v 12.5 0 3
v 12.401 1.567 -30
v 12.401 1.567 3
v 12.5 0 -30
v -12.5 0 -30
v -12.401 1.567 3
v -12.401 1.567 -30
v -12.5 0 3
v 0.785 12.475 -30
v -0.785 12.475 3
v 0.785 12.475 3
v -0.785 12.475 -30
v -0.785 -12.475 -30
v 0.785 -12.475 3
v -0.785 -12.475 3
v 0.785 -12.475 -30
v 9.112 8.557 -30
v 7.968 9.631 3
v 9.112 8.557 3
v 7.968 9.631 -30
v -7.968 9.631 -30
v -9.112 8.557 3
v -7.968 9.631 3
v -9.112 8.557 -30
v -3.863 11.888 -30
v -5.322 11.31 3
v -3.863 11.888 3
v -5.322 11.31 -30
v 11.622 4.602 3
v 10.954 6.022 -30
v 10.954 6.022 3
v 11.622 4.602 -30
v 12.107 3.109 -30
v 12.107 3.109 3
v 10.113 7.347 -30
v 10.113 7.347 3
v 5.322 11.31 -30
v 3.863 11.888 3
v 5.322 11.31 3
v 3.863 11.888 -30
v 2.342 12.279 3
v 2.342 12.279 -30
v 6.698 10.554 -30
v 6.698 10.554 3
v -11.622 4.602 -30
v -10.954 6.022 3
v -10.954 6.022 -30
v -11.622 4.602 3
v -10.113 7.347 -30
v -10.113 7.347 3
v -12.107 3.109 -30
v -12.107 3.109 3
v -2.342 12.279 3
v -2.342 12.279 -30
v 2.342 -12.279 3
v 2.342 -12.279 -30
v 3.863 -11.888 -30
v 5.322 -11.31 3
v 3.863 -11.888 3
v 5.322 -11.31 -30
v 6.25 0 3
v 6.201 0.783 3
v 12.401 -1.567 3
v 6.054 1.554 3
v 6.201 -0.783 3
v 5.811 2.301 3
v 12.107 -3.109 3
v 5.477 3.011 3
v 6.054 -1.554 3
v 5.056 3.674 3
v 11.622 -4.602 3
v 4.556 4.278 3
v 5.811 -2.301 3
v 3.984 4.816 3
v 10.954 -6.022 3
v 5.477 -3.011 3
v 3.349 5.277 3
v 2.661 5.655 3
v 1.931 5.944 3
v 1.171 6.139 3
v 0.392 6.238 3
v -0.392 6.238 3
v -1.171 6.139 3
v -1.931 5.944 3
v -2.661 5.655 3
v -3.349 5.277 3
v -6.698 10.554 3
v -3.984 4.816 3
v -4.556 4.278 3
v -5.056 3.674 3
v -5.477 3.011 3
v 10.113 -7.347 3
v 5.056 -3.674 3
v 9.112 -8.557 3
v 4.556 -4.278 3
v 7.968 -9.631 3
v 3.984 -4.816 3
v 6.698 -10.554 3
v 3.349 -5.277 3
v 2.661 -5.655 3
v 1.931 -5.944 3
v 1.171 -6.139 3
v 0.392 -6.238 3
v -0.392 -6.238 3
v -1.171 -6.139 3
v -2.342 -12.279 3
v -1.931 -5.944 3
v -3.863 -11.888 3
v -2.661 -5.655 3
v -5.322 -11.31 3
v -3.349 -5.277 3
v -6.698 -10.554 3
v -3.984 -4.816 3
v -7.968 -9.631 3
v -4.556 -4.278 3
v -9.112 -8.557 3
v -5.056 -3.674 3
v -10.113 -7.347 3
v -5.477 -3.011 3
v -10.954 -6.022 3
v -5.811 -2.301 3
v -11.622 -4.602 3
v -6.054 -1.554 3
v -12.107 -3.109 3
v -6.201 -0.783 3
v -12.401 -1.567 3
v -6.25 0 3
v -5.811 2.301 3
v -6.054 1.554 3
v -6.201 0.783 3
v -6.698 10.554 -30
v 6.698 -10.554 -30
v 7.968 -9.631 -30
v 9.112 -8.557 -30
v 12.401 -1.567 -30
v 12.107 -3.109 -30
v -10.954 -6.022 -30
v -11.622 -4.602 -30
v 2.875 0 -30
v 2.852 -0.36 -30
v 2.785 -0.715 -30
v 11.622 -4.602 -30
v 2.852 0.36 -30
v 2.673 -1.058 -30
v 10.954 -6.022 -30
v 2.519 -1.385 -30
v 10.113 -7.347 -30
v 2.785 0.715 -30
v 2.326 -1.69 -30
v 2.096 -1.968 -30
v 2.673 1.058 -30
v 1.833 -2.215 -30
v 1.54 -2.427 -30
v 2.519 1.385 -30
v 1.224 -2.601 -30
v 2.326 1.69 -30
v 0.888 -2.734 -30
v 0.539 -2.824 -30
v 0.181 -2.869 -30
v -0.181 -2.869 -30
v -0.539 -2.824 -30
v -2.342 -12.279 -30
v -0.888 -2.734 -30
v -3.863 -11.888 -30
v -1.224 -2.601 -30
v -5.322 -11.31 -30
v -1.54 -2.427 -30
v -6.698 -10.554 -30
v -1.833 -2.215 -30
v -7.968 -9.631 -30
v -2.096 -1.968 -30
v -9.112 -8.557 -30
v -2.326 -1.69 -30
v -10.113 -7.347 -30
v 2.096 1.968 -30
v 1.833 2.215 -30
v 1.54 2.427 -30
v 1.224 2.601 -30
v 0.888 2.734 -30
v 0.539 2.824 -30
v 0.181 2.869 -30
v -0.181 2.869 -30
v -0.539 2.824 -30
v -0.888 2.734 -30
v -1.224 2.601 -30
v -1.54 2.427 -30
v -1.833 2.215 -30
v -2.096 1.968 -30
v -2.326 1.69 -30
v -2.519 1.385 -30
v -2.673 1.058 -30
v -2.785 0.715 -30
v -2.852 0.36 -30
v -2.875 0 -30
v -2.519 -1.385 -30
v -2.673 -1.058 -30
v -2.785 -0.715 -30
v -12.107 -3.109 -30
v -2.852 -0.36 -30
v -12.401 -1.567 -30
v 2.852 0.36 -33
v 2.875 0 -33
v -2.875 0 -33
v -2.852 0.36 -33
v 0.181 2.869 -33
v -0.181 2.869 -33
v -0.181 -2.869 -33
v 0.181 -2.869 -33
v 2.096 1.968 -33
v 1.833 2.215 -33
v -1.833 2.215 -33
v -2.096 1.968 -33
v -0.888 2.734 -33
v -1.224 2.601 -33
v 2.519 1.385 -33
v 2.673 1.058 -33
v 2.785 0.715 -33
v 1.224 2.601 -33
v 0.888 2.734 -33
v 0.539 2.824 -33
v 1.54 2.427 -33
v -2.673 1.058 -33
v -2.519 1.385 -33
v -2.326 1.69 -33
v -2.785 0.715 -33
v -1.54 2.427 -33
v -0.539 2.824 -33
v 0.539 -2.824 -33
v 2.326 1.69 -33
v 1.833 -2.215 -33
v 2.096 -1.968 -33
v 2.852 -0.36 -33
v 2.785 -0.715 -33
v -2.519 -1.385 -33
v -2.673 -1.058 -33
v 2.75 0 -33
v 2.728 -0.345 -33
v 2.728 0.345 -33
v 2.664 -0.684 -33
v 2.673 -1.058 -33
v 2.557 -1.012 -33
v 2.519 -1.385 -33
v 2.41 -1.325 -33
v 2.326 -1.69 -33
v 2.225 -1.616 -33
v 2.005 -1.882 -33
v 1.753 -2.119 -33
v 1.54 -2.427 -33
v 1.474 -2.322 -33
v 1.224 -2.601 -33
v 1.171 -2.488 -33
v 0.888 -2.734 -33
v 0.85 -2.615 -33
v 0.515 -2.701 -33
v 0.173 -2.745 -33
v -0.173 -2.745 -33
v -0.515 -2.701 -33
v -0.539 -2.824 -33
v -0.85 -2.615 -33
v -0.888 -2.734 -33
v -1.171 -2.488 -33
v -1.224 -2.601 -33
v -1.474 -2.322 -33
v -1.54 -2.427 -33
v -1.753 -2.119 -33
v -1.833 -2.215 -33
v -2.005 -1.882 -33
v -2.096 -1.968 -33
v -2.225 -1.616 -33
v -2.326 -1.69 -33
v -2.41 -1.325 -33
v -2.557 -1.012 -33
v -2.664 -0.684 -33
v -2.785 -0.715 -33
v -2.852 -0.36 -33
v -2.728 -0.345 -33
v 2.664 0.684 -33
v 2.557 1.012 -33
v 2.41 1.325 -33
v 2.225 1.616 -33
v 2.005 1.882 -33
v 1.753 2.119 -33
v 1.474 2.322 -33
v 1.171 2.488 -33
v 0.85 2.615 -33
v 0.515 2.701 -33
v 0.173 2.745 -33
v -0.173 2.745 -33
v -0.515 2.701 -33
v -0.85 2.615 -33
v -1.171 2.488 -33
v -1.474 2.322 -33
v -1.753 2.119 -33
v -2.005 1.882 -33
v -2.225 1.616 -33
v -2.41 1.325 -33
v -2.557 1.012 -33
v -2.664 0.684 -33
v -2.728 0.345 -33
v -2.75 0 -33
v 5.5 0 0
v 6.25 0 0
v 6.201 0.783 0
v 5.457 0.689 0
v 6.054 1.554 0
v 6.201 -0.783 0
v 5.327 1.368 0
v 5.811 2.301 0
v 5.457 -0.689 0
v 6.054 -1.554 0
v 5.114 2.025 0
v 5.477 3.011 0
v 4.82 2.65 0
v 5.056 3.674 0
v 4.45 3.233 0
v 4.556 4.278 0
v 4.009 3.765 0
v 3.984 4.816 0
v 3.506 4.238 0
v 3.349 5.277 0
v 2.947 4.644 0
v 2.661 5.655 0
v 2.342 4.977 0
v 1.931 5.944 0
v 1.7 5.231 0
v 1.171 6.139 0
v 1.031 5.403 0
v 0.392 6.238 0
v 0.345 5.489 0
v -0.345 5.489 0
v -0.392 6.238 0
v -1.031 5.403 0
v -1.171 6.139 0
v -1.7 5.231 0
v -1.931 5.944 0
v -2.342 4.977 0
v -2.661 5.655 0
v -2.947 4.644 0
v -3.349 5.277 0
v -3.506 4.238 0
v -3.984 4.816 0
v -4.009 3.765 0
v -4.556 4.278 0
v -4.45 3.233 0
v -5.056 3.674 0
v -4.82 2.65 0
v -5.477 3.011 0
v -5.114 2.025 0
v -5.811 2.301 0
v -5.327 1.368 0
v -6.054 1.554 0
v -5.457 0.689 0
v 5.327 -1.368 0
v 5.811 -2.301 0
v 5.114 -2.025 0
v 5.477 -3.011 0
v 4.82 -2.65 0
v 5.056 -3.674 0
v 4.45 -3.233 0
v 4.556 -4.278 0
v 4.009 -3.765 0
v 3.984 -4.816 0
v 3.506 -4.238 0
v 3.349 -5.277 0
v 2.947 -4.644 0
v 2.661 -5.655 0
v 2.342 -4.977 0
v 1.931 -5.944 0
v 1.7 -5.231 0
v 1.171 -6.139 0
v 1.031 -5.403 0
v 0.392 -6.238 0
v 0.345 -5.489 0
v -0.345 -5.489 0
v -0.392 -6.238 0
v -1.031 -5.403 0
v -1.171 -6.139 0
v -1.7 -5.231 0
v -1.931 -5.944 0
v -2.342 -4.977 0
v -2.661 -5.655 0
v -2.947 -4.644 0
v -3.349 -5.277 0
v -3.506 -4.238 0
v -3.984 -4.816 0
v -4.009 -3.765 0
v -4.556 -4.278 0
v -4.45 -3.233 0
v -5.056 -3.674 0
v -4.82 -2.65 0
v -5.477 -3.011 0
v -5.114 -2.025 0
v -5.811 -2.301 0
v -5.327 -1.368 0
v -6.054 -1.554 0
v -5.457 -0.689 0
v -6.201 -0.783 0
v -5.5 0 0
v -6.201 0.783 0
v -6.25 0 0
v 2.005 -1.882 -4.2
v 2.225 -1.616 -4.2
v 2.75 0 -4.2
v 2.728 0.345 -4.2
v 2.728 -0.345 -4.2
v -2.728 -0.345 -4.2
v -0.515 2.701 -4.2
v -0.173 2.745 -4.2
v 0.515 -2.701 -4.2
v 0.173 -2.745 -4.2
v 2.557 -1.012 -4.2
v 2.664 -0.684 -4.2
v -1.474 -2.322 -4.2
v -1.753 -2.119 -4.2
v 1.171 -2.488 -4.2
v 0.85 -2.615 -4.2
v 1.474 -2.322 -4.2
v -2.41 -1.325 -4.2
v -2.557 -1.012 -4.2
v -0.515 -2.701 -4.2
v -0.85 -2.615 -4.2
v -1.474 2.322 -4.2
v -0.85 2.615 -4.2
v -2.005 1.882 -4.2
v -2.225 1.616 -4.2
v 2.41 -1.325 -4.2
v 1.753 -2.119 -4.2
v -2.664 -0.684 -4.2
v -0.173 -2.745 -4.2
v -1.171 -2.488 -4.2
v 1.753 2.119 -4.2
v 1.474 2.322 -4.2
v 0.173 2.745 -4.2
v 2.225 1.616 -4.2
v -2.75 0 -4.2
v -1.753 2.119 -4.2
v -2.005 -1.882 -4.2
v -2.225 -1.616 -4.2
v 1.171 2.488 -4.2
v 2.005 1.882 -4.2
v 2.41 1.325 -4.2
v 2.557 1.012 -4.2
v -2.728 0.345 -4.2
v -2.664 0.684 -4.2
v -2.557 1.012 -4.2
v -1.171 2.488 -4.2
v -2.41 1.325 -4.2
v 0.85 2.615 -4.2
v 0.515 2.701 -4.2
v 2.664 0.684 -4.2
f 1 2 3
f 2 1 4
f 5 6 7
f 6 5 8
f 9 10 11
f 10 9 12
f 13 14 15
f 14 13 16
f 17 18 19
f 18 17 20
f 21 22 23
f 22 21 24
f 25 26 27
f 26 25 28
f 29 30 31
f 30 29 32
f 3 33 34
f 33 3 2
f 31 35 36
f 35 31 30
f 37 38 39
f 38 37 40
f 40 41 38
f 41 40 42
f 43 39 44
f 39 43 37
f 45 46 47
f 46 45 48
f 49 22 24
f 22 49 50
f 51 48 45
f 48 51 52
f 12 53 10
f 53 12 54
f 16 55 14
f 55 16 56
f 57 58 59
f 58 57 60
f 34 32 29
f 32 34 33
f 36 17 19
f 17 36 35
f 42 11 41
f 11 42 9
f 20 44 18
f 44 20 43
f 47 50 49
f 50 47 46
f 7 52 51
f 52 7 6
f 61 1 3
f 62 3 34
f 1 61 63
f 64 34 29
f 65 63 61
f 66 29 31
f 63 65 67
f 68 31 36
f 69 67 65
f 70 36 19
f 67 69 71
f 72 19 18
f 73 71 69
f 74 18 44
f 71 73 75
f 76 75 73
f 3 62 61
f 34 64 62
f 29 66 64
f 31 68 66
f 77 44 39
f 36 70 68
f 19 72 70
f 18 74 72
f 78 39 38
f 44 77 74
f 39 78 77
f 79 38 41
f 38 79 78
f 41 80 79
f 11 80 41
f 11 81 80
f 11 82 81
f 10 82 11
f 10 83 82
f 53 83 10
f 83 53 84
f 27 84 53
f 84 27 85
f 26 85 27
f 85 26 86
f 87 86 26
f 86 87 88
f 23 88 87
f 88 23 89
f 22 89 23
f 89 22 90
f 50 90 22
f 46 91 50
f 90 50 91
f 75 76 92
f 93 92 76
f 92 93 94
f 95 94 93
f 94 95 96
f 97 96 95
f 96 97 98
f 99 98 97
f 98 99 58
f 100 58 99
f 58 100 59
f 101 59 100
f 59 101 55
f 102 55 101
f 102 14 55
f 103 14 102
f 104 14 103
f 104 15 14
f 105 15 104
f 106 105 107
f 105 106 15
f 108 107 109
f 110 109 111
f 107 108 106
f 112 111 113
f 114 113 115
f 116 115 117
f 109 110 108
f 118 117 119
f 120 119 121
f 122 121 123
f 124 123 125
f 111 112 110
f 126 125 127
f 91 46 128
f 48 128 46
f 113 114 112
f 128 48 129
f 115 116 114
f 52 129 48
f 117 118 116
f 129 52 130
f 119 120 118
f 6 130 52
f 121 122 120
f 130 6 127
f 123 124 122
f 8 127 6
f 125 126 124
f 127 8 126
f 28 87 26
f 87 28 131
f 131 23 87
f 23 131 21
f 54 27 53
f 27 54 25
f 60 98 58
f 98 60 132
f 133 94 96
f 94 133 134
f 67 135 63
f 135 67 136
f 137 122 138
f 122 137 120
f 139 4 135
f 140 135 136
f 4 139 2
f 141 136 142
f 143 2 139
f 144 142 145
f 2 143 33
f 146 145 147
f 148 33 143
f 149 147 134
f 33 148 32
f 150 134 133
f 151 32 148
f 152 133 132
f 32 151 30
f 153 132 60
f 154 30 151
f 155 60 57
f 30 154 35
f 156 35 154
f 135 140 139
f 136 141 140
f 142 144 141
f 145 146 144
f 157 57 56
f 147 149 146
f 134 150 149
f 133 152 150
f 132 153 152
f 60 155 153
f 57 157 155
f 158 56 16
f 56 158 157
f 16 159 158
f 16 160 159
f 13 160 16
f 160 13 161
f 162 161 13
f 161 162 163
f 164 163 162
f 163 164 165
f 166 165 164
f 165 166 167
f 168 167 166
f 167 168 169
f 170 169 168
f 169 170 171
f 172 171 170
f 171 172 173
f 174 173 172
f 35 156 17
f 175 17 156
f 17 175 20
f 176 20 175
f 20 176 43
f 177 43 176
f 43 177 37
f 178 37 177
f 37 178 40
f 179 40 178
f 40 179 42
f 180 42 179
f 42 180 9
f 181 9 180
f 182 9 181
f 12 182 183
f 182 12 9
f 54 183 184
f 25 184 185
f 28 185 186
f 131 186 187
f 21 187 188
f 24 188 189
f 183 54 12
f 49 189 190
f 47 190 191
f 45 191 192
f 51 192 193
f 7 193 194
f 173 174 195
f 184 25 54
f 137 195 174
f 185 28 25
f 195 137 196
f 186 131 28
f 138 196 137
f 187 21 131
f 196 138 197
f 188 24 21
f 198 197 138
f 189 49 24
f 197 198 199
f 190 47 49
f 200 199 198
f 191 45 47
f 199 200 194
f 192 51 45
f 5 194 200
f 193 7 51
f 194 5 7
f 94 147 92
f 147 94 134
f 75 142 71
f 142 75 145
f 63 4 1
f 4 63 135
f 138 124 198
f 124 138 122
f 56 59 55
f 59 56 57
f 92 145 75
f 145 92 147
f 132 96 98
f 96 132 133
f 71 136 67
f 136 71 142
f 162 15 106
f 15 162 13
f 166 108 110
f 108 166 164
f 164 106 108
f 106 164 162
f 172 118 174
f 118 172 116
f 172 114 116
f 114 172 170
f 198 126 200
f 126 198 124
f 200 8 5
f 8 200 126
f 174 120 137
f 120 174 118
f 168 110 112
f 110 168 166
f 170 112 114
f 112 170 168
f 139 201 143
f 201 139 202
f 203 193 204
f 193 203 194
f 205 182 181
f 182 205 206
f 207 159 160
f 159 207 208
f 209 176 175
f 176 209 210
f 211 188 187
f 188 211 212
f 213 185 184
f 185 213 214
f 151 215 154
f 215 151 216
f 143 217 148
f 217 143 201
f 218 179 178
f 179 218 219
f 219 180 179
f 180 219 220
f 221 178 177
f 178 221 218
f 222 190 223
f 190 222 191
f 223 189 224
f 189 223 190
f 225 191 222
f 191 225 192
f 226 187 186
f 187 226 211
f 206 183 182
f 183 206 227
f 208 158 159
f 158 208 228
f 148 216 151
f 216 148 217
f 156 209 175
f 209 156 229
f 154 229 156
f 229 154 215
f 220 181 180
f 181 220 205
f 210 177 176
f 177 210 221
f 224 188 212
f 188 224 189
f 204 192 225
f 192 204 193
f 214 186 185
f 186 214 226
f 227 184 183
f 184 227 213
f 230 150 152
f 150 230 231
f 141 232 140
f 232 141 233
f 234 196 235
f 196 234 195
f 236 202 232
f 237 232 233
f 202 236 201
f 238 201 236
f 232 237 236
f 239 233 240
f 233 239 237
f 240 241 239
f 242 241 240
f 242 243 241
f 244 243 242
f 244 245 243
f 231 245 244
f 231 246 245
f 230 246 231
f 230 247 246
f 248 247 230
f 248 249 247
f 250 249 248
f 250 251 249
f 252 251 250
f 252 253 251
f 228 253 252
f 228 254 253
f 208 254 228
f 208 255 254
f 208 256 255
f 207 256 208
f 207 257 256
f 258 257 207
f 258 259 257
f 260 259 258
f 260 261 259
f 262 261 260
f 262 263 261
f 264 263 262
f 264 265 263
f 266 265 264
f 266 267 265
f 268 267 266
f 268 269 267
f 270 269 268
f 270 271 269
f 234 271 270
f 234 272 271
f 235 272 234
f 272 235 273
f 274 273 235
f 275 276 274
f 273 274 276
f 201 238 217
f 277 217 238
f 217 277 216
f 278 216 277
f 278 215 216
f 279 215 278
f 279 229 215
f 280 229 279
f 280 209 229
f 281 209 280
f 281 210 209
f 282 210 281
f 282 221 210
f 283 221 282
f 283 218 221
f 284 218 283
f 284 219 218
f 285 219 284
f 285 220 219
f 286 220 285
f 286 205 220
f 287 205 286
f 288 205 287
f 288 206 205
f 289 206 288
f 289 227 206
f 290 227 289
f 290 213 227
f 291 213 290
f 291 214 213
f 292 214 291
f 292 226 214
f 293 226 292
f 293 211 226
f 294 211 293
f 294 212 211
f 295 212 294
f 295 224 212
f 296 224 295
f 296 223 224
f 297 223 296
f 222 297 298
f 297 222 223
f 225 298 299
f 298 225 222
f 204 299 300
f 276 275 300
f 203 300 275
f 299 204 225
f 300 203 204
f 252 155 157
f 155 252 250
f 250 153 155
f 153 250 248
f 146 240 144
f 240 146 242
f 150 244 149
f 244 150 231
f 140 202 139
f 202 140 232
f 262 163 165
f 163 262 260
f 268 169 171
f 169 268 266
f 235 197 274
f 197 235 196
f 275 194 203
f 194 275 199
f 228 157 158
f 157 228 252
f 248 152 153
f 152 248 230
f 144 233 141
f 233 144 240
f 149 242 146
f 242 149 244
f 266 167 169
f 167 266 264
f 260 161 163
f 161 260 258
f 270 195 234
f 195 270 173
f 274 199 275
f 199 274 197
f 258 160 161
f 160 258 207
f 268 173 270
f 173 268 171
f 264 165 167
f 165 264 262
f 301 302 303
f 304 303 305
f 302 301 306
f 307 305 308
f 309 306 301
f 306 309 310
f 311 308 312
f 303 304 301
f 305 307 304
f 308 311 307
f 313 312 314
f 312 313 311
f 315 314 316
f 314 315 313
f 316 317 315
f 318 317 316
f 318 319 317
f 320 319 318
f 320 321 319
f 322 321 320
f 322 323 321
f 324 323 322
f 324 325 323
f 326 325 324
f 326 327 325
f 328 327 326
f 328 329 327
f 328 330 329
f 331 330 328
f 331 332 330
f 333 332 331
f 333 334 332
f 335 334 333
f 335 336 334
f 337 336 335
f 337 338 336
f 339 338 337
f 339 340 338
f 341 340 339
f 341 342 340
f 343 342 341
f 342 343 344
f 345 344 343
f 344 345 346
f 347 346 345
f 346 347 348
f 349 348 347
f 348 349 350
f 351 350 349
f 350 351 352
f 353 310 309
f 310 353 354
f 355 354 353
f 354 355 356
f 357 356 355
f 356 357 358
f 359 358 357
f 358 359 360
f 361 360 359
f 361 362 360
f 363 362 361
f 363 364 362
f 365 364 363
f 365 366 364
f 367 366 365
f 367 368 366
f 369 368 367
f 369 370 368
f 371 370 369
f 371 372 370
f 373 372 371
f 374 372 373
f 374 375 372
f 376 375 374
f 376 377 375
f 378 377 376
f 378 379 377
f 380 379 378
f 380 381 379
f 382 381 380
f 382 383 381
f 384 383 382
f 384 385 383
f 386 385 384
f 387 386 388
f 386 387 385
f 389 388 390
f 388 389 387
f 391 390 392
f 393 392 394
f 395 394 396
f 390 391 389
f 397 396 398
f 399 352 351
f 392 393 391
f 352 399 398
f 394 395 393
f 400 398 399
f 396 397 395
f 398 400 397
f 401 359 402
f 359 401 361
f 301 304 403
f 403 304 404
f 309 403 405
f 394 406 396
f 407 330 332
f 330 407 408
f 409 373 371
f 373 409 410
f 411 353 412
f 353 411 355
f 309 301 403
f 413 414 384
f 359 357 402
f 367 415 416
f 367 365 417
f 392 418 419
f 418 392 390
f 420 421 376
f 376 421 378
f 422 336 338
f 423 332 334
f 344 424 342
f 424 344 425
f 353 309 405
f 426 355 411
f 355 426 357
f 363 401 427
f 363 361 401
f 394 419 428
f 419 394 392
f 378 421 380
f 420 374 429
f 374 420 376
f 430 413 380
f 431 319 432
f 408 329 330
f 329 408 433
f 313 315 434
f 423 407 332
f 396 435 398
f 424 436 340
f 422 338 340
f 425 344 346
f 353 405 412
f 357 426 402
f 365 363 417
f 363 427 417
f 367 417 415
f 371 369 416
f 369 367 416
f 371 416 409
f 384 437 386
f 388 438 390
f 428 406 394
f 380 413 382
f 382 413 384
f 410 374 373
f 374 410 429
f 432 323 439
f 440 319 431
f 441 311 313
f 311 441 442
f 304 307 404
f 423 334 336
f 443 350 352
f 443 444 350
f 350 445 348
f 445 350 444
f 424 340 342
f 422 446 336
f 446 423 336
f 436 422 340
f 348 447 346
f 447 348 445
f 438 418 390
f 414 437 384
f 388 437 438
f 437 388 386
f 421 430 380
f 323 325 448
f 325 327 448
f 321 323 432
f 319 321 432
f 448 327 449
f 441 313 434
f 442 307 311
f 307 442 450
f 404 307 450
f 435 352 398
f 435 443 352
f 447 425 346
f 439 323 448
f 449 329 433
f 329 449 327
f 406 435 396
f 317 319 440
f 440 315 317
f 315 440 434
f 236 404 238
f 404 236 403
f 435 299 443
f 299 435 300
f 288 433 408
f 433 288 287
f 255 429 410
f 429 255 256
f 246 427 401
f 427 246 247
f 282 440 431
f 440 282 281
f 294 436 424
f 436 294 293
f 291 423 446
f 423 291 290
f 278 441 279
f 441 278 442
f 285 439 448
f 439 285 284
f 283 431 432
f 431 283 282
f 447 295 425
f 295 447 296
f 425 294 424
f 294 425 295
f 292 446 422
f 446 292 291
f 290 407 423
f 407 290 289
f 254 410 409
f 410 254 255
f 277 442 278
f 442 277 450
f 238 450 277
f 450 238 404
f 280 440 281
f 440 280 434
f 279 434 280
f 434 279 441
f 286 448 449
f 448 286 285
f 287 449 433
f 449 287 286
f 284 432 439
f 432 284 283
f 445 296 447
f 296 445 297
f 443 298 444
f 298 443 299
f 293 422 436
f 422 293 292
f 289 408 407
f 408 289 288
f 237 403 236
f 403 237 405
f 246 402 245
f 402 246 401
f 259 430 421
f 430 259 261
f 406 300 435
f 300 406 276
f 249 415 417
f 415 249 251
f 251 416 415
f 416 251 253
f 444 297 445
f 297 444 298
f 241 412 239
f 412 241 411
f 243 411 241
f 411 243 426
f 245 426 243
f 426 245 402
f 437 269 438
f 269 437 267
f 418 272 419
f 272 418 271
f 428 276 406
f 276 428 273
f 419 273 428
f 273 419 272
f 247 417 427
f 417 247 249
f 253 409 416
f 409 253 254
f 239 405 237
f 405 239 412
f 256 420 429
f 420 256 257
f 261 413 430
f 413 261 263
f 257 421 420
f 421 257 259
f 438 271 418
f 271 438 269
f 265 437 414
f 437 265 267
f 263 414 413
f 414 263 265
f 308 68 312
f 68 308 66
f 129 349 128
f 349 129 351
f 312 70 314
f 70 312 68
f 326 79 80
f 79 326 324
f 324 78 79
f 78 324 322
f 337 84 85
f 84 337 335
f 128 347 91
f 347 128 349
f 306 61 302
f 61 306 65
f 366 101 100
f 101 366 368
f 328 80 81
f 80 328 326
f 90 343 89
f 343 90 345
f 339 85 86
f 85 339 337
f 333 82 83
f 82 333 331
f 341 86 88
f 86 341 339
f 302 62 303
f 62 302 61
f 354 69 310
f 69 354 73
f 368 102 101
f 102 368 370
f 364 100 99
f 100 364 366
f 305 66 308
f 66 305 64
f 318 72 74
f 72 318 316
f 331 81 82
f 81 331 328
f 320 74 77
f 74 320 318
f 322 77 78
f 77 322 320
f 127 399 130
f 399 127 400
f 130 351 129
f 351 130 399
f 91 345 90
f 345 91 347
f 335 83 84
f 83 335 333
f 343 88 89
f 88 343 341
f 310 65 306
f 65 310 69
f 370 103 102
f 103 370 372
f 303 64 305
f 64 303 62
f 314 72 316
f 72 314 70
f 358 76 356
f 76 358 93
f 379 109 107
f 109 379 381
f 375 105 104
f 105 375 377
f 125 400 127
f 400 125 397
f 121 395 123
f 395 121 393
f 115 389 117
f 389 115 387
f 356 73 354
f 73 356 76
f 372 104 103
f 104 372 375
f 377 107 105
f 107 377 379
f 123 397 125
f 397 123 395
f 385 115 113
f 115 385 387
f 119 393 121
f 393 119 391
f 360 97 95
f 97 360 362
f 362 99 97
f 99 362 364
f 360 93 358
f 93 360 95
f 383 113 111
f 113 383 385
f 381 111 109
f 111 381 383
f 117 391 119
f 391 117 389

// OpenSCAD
$fn = 50;

difference() {
	union() {
		translate(v = [0, 0, -30.0]) {
			cylinder(h = 33, r = 12.5);
		}
		#translate(v = [0, 0, -33.0]) {
			cylinder(h = 33, r = 2.875);
		}
	}
	union() {
		translate(v = [0, 0, 0]) {
			rotate(a = [0, 0, 0]) {
				difference() {
					union() {
						translate(v = [0, 0, -33.0]) {
							cylinder(h = 33, r = 2.25);
						}
						translate(v = [0, 0, -4.2]) {
							cylinder(h = 4.2, r1 = 2.75, r2 = 5.5);
						}
						translate(v = [0, 0, -33.0]) {
							cylinder(h = 33, r = 2.75);
						}
						translate(v = [0, 0, -33.0]) {
							cylinder(h = 33, r = 2.25);
						}
					}
					union();
				}
			}
		}
		#cylinder(h = 3, r = 6.25);
	}
}
